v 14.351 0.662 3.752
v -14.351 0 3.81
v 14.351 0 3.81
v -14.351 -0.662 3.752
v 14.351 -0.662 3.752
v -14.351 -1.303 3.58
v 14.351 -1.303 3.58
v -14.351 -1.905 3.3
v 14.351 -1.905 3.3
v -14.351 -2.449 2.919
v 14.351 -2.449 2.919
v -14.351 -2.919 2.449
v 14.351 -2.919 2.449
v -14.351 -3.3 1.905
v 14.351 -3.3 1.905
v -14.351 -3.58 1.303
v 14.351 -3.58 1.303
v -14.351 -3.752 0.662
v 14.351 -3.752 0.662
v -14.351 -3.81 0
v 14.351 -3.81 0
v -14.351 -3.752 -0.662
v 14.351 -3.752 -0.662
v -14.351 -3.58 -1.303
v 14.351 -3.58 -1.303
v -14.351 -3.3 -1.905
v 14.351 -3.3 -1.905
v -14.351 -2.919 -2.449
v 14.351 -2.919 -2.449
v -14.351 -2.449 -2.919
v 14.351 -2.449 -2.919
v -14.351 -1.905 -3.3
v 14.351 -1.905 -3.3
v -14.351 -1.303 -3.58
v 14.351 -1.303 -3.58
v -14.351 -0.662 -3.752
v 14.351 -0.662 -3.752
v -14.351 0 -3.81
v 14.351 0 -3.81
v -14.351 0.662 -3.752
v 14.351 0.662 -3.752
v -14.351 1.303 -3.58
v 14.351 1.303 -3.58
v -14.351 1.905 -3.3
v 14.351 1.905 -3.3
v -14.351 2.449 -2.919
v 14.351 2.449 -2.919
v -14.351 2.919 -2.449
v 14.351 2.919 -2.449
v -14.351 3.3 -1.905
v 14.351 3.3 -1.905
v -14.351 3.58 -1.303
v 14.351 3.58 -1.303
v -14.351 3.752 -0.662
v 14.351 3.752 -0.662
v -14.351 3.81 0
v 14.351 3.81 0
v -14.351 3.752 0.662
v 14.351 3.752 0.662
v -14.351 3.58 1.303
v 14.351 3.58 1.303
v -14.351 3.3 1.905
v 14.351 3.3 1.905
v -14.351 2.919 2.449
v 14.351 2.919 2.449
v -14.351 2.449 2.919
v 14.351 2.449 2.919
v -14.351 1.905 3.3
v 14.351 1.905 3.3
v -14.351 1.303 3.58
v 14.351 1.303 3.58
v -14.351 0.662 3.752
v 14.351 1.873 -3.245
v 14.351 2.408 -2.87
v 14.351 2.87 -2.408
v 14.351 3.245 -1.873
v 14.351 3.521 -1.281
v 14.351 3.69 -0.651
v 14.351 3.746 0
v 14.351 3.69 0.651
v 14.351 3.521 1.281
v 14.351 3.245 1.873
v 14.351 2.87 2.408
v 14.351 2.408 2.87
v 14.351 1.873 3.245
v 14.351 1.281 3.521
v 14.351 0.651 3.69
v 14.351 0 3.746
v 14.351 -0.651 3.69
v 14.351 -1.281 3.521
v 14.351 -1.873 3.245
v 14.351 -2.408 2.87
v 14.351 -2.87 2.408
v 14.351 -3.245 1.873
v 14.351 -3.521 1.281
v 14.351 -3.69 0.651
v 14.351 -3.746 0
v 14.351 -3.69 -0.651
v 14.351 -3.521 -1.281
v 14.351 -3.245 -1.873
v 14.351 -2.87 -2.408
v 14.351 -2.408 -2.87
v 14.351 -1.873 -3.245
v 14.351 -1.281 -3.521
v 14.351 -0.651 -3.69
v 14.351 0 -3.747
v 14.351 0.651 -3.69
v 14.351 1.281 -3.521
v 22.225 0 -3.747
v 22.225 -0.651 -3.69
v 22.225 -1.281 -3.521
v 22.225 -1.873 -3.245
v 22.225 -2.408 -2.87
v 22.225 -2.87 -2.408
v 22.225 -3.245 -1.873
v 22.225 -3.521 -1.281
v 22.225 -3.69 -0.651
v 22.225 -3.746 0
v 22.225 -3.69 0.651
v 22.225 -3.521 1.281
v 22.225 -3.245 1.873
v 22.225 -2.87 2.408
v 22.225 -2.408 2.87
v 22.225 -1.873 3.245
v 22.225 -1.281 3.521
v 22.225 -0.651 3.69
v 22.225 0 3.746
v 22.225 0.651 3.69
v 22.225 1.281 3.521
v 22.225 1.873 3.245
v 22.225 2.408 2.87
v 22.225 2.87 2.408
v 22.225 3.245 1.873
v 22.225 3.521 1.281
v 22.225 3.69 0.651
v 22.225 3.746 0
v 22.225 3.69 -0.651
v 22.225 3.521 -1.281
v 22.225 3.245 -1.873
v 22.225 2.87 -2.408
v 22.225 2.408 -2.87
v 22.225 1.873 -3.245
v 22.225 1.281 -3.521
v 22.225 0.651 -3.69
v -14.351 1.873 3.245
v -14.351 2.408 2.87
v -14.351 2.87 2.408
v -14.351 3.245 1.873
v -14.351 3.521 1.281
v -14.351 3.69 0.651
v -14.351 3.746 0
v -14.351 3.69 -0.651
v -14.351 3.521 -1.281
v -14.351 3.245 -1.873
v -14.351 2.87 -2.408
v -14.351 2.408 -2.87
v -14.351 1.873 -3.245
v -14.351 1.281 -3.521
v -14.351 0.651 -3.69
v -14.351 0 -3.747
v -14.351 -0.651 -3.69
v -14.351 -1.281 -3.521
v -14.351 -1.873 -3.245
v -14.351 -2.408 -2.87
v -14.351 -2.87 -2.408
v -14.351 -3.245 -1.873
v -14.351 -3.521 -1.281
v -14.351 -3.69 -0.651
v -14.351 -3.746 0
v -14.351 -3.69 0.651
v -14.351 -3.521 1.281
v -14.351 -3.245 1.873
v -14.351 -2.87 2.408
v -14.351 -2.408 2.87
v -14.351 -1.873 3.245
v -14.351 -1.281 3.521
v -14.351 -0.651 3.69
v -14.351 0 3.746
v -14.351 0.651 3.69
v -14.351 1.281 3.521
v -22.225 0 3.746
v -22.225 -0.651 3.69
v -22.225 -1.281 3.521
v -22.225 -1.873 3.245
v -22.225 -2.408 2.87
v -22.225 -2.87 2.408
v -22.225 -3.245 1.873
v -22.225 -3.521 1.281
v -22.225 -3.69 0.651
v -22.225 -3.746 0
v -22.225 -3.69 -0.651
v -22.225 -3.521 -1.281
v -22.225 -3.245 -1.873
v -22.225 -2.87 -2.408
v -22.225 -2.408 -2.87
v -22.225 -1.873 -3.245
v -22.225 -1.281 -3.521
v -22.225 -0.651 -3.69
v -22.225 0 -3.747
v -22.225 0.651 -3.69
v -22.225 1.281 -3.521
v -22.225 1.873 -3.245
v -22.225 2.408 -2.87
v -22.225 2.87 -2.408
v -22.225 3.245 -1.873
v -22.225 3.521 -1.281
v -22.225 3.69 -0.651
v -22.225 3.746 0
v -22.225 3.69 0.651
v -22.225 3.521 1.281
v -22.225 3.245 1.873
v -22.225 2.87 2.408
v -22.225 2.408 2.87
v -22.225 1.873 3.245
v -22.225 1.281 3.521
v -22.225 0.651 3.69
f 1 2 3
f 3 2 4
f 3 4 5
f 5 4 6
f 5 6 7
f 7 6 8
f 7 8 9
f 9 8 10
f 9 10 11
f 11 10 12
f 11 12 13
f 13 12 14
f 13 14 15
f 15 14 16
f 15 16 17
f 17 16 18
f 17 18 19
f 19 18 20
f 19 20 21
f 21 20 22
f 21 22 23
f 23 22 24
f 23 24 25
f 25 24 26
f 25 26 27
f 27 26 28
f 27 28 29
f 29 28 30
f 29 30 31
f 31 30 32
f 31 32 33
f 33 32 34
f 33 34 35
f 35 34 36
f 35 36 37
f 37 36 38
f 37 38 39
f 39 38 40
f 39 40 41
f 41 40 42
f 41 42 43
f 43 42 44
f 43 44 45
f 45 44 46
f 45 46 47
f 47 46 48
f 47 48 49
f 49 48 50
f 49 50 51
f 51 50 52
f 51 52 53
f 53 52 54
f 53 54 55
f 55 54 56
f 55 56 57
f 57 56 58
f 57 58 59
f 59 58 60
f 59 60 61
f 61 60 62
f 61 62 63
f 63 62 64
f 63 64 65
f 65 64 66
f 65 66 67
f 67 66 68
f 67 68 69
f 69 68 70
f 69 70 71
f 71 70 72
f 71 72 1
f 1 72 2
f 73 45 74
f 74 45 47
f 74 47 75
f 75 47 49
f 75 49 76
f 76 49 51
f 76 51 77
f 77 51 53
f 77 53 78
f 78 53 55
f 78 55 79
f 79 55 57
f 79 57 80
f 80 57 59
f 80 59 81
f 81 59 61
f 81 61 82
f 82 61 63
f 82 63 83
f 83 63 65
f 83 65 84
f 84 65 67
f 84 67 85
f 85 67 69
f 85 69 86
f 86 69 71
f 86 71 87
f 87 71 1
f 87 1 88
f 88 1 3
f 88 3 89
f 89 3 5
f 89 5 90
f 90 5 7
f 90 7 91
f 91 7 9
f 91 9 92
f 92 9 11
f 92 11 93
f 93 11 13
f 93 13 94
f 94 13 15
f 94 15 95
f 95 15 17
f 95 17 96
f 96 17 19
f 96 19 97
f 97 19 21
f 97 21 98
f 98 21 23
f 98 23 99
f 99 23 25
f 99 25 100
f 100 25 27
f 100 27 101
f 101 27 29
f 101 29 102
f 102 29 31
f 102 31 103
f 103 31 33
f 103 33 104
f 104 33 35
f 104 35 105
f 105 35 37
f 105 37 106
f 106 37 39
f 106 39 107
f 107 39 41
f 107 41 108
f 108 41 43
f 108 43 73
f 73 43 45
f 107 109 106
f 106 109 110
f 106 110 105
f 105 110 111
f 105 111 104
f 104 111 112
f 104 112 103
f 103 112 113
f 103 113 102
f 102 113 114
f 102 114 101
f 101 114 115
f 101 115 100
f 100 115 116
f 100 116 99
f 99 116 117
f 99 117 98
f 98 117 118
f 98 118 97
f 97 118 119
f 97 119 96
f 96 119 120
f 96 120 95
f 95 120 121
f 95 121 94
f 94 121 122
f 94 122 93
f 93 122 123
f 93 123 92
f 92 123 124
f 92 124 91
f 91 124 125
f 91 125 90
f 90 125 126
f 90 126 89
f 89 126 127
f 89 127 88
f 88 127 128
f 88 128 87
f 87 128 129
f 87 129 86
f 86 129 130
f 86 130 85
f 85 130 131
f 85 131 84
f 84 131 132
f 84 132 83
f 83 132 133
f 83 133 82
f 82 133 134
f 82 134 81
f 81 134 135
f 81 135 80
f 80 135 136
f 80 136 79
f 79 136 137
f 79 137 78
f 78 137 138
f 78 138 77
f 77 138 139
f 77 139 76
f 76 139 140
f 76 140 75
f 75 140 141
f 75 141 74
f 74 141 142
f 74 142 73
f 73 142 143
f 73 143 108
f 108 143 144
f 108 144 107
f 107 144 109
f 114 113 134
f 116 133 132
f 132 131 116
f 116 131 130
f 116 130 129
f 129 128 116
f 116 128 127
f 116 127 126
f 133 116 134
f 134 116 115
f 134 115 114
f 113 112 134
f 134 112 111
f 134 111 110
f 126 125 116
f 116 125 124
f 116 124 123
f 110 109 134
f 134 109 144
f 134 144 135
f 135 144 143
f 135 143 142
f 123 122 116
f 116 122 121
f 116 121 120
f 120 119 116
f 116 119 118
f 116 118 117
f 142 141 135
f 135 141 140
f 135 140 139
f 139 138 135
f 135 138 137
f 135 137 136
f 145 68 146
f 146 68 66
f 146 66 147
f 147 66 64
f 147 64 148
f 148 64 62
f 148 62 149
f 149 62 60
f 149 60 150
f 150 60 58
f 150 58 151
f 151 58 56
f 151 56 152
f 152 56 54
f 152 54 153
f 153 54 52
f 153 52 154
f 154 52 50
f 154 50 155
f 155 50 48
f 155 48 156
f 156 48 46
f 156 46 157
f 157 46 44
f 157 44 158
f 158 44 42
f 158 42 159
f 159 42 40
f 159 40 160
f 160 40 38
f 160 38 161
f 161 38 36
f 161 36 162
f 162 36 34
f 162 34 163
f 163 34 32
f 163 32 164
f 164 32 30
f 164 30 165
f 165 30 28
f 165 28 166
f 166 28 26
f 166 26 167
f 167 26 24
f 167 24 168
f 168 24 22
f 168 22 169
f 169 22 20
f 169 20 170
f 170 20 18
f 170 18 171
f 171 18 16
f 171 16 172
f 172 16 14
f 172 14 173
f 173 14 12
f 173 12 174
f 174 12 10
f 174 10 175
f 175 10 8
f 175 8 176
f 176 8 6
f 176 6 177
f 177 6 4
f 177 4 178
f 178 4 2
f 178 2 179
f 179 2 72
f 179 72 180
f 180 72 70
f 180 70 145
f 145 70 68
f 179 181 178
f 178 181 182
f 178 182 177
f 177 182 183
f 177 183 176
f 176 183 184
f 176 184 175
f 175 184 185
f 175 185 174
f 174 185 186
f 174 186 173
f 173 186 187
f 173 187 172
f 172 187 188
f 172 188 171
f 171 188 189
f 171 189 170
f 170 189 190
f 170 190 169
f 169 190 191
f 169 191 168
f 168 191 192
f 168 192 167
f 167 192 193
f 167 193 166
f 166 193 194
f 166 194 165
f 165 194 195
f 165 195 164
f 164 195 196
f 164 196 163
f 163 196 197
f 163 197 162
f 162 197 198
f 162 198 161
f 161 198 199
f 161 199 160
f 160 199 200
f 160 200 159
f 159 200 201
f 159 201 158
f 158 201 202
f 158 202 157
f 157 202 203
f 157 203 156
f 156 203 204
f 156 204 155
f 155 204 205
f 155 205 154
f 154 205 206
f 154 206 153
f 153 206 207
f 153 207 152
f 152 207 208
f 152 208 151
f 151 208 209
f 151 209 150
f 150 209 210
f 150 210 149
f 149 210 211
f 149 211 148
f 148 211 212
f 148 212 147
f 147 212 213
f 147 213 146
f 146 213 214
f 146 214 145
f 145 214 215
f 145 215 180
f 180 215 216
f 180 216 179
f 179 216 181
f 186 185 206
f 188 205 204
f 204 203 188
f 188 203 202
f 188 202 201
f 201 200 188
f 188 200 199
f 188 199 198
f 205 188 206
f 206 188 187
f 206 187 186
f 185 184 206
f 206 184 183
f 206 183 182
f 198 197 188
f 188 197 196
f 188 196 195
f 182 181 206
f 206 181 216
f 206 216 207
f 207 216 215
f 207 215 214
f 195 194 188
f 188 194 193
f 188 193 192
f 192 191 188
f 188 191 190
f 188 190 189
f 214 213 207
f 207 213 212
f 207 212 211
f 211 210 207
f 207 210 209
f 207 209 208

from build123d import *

# Parameters (mm, degrees)
SKETCH1_R               = 3.81
BOSS_EXTRUDE1_DEPTH     = 22.225
SKETCH2_R               = 6.2865
SKETCH2_R_2             = 3.7465
CUT_EXTRUDE_THIN3_DEPTH = 7.874


with BuildPart() as part:
    # Sketch1 → Boss-Extrude1 (new body, symmetric)
    with BuildSketch(Plane(origin=(0, 0, 0), x_dir=(0, 0, -1), z_dir=(1, 0, 0))):
        Circle(SKETCH1_R)
    extrude(amount=BOSS_EXTRUDE1_DEPTH, both=True)

    # Sketch2 → Cut-Extrude-Thin3 (cut)
    with BuildSketch(Plane(origin=(22.225, 0, 0), x_dir=(0, 0, -1), z_dir=(1, 0, 0))):
        Circle(SKETCH2_R)
        Circle(SKETCH2_R_2, mode=Mode.SUBTRACT)
    cut_extrude_thin3 = extrude(amount=-CUT_EXTRUDE_THIN3_DEPTH, mode=Mode.SUBTRACT)

    # Mirror1: Cut-Extrude-Thin3 across plane
    add(cut_extrude_thin3.mirror(Plane(origin=(0, 0, 0), x_dir=(0, 0, 1), z_dir=(1, 0, 0))), mode=Mode.SUBTRACT)


solid = part.part
